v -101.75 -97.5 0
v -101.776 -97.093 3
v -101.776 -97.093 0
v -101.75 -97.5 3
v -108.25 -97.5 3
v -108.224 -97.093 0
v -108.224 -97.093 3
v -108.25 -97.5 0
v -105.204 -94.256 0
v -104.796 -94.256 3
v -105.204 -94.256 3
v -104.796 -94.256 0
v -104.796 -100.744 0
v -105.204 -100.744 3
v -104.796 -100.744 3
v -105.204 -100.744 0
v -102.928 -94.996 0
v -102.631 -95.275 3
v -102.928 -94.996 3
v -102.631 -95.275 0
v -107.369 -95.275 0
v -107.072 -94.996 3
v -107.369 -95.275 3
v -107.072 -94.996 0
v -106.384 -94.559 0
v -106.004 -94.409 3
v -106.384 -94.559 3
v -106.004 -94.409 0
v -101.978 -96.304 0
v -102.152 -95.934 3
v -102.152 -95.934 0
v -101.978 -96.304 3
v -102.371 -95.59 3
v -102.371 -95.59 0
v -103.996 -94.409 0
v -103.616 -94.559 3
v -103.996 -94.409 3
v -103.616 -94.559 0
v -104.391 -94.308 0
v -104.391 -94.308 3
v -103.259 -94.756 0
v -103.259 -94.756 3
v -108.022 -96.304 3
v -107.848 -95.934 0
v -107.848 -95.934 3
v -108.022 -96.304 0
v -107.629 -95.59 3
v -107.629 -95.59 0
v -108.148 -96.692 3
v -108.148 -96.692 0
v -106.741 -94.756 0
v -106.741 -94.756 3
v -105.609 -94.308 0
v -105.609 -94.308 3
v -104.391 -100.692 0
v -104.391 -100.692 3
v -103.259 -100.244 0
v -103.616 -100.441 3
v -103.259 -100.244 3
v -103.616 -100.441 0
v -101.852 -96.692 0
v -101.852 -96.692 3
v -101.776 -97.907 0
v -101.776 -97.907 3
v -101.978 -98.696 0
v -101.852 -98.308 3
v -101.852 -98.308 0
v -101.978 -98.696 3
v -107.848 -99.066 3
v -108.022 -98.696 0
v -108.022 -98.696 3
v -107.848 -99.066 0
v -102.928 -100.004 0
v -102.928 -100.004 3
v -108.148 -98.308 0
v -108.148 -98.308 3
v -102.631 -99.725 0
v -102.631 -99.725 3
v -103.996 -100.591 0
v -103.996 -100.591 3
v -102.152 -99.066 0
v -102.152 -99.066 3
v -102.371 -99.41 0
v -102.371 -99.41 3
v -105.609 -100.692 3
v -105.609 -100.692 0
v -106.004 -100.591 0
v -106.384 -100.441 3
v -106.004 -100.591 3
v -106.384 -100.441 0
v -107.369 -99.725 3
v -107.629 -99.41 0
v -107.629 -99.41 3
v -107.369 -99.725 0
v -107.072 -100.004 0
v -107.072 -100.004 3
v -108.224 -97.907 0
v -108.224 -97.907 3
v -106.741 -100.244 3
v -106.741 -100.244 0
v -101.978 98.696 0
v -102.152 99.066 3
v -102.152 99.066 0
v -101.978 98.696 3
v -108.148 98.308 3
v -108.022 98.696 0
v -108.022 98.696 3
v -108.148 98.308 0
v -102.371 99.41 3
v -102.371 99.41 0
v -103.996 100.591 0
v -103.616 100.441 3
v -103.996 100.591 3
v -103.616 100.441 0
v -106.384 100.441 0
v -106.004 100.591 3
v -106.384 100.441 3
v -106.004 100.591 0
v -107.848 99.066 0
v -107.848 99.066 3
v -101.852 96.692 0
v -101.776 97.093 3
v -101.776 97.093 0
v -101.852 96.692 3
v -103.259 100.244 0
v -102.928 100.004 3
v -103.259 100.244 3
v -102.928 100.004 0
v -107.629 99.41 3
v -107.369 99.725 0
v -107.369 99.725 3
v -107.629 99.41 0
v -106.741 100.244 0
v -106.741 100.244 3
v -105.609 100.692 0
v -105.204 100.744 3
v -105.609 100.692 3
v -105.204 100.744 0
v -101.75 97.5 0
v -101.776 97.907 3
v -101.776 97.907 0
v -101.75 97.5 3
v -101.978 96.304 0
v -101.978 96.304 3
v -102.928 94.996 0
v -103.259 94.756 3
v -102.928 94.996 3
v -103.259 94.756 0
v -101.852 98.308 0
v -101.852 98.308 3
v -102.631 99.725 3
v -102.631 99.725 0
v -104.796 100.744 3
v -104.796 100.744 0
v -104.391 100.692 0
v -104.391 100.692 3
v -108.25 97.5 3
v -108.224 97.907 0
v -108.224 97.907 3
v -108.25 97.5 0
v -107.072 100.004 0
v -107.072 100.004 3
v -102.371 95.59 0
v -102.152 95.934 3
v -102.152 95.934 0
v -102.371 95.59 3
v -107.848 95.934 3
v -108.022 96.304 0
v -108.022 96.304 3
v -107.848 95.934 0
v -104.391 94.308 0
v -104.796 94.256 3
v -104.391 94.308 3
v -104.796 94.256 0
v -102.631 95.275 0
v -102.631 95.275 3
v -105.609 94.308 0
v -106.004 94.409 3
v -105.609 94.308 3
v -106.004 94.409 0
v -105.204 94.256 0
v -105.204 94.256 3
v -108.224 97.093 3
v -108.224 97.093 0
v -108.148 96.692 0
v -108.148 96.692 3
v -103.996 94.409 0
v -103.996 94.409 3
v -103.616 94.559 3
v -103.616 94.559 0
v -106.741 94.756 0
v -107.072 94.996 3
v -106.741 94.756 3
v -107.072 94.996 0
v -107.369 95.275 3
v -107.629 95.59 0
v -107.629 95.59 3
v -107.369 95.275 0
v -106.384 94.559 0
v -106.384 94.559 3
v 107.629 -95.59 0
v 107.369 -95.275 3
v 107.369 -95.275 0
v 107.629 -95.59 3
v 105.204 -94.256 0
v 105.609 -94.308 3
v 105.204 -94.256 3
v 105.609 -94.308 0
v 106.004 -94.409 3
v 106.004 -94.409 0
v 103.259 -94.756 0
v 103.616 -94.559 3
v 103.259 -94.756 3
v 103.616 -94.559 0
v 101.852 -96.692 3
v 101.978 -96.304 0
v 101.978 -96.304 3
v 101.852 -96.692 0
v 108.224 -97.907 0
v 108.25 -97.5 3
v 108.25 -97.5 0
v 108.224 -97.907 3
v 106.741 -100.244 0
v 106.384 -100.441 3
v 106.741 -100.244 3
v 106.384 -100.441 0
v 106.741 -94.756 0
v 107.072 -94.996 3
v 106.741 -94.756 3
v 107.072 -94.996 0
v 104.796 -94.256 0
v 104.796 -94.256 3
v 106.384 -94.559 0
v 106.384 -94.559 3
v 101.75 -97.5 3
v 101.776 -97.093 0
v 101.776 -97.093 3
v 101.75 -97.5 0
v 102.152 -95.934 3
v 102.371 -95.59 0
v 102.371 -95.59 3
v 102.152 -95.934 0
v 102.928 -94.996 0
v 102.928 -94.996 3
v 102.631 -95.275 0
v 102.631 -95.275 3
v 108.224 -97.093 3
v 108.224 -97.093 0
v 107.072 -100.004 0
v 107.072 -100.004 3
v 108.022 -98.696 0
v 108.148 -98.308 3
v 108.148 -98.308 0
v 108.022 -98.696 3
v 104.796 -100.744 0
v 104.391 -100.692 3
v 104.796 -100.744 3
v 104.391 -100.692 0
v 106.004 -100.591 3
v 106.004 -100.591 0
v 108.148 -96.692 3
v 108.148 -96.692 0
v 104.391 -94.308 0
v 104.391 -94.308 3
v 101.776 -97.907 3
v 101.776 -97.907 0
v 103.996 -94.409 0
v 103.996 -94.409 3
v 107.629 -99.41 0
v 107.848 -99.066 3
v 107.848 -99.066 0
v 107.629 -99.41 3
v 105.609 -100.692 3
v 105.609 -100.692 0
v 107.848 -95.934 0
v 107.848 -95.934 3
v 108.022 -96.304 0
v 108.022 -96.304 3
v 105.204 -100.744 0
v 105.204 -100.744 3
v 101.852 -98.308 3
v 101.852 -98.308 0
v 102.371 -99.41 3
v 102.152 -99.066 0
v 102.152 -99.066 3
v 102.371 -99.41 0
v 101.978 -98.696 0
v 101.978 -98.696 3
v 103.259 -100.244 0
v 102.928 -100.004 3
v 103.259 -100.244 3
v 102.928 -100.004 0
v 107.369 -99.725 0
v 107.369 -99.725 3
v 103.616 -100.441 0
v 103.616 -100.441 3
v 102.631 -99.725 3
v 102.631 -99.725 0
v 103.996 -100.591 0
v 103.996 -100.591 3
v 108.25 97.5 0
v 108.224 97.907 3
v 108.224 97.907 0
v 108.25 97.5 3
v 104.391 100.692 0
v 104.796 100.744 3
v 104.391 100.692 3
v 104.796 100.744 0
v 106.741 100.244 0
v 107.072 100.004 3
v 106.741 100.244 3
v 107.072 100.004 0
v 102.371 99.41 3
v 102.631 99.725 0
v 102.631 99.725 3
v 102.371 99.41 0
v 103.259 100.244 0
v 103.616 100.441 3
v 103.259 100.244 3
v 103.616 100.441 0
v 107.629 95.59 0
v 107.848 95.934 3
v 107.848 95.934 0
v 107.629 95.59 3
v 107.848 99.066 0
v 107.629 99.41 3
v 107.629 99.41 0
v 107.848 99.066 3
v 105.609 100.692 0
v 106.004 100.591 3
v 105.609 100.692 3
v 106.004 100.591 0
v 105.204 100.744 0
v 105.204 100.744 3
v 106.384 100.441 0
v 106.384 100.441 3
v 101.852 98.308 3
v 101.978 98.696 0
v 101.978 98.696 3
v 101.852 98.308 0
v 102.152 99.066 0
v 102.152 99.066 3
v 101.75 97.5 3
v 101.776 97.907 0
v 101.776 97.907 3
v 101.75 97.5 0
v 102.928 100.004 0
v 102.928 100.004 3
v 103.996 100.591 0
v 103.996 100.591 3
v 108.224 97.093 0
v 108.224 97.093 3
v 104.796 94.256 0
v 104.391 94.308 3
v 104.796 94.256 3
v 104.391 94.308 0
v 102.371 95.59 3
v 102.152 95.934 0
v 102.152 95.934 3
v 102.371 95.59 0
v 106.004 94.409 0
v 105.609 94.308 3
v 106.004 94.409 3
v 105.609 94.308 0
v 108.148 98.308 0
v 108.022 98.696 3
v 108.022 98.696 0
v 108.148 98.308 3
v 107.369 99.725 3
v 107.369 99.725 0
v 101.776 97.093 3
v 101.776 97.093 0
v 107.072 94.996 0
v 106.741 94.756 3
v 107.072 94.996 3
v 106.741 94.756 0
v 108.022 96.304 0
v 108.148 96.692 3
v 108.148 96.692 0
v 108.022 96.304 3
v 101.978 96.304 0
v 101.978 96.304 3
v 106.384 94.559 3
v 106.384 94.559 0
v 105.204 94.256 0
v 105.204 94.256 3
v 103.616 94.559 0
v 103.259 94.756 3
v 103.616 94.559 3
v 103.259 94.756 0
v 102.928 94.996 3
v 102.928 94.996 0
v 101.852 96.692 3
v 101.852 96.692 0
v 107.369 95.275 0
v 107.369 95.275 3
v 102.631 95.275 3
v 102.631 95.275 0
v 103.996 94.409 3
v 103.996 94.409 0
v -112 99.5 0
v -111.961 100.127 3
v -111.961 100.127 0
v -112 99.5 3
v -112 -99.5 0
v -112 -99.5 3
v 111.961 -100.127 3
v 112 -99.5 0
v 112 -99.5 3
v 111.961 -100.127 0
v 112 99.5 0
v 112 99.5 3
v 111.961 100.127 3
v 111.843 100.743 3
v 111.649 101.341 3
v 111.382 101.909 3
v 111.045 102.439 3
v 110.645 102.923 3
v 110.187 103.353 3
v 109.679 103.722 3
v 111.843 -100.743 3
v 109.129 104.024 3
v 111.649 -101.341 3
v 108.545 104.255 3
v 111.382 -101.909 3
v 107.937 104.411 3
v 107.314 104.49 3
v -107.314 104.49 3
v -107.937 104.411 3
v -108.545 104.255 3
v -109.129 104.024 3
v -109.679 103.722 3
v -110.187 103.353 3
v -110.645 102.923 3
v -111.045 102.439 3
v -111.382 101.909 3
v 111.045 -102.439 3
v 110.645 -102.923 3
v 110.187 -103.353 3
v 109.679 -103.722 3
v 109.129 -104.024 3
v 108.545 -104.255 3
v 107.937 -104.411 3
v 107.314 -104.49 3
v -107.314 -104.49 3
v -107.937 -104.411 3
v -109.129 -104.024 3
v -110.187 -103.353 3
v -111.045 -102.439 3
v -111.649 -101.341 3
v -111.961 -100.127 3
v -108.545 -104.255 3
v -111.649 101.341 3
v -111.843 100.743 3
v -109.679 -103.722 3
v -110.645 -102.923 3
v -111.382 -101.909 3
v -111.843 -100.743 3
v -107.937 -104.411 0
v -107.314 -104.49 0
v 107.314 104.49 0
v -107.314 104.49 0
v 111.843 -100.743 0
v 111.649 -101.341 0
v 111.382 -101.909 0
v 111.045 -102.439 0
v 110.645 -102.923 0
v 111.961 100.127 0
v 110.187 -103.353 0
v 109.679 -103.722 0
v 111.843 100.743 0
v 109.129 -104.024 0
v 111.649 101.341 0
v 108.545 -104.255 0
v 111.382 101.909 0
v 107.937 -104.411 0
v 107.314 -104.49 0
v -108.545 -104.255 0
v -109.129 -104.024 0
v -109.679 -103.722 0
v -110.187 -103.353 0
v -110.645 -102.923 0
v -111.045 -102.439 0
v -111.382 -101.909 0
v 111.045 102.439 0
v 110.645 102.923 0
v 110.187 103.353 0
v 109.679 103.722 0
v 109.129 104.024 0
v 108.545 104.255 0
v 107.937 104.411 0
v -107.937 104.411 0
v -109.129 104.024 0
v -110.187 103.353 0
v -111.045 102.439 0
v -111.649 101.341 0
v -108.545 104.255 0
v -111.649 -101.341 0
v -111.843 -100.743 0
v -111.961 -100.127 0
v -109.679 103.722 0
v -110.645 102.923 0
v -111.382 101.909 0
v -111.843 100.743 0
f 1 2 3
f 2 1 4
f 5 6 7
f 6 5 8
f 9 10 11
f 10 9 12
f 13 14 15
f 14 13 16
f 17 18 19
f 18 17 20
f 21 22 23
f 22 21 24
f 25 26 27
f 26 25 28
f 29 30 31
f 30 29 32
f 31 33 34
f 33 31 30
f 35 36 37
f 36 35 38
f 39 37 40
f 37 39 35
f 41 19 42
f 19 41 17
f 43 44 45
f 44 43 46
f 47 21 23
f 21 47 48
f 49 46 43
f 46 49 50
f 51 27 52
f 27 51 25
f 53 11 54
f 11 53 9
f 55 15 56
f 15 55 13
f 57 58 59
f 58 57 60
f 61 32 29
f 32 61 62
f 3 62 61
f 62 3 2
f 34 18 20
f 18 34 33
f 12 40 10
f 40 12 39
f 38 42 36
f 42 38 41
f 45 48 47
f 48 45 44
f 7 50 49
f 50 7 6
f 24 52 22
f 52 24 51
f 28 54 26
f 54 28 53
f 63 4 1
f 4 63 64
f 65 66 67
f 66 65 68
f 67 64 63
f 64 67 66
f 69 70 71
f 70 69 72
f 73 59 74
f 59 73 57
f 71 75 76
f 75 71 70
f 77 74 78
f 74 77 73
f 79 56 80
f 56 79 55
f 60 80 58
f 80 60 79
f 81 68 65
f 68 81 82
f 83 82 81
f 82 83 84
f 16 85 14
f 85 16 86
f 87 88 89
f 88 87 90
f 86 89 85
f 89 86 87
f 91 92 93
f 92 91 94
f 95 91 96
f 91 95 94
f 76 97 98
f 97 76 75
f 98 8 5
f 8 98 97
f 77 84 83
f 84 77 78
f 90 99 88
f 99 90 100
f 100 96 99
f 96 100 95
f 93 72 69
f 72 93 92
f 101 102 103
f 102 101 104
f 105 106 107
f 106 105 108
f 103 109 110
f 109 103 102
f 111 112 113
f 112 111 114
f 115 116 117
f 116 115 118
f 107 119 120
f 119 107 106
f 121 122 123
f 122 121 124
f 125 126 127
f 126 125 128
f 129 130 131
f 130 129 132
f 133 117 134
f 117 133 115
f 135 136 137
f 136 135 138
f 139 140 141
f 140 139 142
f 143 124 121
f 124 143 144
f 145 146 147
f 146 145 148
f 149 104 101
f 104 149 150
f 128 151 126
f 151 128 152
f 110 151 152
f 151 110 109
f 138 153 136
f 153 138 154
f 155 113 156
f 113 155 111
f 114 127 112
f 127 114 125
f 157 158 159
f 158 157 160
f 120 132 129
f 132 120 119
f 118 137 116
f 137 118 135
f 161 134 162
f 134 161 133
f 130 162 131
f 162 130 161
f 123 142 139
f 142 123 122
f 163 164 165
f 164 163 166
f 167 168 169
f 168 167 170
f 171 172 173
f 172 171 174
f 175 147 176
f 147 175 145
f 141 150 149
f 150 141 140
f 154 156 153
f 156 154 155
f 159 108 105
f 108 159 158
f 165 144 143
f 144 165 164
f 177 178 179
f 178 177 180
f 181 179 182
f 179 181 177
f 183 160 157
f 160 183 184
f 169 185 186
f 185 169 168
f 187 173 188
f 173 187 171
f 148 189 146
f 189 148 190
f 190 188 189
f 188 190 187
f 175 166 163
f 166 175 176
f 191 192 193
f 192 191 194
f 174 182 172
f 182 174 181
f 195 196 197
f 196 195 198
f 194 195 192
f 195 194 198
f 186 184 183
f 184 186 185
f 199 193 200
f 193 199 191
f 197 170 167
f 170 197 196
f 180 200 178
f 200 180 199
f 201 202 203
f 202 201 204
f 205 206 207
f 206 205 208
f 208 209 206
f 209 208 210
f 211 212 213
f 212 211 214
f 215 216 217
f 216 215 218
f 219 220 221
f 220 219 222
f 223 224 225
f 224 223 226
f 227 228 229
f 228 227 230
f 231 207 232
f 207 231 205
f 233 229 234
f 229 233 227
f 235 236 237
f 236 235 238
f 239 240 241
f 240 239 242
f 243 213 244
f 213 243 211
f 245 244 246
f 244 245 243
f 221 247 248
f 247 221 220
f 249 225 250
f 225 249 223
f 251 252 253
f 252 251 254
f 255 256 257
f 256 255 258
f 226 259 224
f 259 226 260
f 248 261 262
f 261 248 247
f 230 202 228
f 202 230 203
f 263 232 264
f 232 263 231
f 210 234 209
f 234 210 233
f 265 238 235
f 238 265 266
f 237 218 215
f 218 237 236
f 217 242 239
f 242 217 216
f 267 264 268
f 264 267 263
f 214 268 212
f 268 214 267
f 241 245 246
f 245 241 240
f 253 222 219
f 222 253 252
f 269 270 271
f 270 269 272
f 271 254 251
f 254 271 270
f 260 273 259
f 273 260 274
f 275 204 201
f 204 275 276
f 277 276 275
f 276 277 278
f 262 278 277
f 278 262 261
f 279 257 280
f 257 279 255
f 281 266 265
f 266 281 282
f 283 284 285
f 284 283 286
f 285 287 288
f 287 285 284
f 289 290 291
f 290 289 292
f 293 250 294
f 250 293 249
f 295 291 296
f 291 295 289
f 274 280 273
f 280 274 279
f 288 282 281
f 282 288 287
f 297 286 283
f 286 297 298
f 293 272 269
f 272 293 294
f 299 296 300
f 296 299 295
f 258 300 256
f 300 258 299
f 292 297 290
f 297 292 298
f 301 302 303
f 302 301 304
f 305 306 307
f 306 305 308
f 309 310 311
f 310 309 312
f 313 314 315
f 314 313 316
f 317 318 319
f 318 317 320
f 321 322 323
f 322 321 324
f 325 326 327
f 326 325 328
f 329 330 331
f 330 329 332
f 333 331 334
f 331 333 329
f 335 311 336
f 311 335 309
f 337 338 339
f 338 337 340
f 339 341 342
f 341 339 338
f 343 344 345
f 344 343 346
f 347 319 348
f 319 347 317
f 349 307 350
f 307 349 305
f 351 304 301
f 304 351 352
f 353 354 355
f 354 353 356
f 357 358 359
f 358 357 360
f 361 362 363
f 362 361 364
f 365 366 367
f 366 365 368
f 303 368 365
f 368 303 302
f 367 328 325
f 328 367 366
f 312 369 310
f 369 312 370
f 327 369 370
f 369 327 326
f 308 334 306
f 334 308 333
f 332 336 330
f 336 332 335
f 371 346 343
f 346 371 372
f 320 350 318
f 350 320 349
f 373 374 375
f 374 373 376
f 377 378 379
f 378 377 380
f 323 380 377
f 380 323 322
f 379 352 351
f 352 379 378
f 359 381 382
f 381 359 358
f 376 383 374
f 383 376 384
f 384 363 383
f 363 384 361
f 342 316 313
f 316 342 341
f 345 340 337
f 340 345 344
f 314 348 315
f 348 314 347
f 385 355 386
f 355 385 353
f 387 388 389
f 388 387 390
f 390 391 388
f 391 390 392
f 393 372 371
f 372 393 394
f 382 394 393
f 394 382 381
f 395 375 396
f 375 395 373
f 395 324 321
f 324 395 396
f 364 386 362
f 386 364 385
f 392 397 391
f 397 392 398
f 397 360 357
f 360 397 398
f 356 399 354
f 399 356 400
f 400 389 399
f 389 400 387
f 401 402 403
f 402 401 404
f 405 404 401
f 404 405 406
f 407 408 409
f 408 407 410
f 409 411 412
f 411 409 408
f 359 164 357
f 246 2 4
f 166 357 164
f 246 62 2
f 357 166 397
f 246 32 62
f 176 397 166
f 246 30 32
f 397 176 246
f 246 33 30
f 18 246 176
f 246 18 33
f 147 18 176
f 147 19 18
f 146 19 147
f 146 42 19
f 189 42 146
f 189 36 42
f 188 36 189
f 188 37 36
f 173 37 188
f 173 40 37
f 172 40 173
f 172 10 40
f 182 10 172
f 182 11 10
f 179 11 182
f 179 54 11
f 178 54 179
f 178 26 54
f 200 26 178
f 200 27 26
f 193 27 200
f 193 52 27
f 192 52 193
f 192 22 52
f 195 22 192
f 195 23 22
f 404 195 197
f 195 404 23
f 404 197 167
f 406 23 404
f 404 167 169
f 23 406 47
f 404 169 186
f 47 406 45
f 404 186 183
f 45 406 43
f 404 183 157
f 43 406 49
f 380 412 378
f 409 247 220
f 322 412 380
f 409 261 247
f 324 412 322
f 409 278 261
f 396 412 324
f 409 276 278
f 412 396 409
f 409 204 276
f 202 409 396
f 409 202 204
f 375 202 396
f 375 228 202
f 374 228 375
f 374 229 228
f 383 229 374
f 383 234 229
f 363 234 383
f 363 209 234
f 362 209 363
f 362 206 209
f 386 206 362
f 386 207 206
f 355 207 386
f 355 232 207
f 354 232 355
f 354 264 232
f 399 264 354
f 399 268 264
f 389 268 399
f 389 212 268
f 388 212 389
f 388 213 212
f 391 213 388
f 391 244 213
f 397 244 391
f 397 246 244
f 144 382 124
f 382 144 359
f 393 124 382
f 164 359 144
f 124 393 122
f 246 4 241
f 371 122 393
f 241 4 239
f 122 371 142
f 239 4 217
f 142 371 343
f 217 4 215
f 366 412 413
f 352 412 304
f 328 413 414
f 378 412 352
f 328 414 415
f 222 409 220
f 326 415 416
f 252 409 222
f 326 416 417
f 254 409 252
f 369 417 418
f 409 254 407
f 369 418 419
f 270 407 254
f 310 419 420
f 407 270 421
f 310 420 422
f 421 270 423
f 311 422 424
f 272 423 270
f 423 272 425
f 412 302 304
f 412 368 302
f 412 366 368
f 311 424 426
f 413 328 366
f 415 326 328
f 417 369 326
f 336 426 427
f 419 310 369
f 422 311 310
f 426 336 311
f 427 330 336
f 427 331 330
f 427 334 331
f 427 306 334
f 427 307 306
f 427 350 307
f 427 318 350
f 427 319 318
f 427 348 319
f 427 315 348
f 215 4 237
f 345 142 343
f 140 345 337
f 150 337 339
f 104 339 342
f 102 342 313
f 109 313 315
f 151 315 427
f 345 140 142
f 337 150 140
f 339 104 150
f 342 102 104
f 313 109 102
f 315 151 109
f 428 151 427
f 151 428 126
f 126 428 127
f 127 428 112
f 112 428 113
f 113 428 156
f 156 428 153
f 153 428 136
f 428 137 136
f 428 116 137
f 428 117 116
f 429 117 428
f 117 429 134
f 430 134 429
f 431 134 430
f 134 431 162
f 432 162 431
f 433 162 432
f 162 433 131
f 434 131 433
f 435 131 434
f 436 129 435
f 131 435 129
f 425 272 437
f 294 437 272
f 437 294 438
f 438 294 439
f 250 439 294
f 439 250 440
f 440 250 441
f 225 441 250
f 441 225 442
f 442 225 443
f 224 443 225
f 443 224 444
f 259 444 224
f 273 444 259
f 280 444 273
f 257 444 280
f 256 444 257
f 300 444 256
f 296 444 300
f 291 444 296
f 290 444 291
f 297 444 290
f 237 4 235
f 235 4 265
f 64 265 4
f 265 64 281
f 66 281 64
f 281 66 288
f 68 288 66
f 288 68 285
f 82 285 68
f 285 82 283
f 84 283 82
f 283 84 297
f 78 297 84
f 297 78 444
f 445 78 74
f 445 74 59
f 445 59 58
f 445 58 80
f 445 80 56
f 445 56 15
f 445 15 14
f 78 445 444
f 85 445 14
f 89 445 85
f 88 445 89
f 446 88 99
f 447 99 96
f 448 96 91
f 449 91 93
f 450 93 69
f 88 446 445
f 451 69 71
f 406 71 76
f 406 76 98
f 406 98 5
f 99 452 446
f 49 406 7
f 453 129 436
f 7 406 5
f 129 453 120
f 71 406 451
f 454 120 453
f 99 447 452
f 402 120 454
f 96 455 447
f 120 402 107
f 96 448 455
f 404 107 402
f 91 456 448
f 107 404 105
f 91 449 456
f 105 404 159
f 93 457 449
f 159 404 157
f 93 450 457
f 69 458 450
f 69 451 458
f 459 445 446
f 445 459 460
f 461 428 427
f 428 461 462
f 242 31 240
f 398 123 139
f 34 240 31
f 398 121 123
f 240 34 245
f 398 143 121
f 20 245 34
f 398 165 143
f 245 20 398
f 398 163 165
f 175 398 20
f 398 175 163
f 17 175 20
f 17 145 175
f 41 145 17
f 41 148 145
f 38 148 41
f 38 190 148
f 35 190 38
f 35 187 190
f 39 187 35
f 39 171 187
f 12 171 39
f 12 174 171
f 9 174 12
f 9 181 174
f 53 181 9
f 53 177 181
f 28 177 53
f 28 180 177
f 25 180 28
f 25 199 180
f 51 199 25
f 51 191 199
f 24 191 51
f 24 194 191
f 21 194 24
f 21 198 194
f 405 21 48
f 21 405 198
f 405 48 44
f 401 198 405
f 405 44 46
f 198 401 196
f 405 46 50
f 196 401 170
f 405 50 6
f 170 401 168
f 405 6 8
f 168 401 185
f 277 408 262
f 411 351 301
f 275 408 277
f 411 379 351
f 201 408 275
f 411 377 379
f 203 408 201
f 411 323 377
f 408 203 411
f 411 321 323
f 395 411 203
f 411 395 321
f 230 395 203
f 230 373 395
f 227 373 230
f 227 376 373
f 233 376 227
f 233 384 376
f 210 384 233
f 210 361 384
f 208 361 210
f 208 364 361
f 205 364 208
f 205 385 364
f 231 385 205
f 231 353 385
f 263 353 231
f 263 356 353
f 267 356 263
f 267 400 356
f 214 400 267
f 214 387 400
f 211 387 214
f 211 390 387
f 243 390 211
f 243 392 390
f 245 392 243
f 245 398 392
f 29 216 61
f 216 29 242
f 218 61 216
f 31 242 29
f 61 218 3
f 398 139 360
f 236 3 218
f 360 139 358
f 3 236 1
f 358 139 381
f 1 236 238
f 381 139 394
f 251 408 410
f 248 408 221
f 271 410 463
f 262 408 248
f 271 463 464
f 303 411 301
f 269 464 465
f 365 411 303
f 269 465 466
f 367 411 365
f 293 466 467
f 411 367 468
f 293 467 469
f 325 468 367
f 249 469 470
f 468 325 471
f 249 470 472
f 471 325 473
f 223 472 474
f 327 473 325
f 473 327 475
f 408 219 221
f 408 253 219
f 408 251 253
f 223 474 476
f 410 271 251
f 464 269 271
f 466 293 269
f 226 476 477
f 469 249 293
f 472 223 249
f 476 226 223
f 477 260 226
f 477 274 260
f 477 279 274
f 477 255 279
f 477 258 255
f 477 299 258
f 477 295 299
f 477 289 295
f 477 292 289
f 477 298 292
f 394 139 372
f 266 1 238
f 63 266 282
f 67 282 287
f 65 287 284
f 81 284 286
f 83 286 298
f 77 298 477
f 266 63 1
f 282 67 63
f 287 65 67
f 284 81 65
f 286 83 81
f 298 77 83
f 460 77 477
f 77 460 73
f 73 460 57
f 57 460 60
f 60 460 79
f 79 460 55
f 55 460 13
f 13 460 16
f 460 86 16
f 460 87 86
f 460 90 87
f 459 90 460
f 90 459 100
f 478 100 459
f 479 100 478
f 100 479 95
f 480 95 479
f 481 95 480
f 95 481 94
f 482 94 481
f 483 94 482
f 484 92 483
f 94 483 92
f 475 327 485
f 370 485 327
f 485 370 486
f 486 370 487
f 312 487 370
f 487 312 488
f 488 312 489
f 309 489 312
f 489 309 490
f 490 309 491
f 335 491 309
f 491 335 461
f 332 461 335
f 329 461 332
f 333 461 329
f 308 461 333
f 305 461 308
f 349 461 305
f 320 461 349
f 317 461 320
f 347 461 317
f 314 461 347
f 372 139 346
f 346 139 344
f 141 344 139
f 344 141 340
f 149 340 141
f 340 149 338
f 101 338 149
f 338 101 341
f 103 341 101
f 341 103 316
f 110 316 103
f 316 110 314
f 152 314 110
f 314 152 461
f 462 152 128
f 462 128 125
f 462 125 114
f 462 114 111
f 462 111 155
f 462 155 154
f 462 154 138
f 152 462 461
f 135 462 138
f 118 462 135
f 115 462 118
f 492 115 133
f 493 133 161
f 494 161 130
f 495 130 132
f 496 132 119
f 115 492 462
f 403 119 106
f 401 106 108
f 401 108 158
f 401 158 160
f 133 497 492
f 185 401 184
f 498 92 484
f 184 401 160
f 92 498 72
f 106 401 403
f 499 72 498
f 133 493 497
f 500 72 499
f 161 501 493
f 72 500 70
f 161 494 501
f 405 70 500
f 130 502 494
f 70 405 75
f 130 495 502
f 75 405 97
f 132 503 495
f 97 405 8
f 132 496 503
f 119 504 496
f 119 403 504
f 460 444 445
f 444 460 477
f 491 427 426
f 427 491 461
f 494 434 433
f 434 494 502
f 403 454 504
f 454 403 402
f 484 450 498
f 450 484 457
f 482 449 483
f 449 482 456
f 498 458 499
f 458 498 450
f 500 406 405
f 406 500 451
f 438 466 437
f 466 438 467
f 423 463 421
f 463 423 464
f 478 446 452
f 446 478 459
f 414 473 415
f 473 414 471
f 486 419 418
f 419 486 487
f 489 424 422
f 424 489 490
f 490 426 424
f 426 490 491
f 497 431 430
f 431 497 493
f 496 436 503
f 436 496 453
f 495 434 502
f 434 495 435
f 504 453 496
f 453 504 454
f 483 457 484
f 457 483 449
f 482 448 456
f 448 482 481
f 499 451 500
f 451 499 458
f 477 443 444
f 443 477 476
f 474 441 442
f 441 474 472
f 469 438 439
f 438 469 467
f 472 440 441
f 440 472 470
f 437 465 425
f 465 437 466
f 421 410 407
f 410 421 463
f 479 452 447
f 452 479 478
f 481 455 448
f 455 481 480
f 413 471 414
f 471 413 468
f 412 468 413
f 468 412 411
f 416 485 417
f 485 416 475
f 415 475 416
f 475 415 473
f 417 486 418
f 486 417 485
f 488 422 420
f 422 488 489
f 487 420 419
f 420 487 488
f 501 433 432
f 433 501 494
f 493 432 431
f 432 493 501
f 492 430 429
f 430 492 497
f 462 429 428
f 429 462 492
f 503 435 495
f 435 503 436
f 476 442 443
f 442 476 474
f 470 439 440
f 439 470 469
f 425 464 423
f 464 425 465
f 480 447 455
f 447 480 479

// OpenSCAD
$fn = 50;


difference() {
	union() {
		hull() {
			translate(v = [-107.0000000000, 99.5000000000, 0]) {
				cylinder(h = 3, r = 5);
			}
			translate(v = [107.0000000000, 99.5000000000, 0]) {
				cylinder(h = 3, r = 5);
			}
			translate(v = [-107.0000000000, -99.5000000000, 0]) {
				cylinder(h = 3, r = 5);
			}
			translate(v = [107.0000000000, -99.5000000000, 0]) {
				cylinder(h = 3, r = 5);
			}
		}
	}
	union() {
		translate(v = [-105.0000000000, -97.5000000000, -100.0000000000]) {
			cylinder(h = 200, r = 3.2500000000);
		}
		translate(v = [-105.0000000000, 97.5000000000, -100.0000000000]) {
			cylinder(h = 200, r = 3.2500000000);
		}
		translate(v = [105.0000000000, -97.5000000000, -100.0000000000]) {
			cylinder(h = 200, r = 3.2500000000);
		}
		translate(v = [105.0000000000, 97.5000000000, -100.0000000000]) {
			cylinder(h = 200, r = 3.2500000000);
		}
	}
}
